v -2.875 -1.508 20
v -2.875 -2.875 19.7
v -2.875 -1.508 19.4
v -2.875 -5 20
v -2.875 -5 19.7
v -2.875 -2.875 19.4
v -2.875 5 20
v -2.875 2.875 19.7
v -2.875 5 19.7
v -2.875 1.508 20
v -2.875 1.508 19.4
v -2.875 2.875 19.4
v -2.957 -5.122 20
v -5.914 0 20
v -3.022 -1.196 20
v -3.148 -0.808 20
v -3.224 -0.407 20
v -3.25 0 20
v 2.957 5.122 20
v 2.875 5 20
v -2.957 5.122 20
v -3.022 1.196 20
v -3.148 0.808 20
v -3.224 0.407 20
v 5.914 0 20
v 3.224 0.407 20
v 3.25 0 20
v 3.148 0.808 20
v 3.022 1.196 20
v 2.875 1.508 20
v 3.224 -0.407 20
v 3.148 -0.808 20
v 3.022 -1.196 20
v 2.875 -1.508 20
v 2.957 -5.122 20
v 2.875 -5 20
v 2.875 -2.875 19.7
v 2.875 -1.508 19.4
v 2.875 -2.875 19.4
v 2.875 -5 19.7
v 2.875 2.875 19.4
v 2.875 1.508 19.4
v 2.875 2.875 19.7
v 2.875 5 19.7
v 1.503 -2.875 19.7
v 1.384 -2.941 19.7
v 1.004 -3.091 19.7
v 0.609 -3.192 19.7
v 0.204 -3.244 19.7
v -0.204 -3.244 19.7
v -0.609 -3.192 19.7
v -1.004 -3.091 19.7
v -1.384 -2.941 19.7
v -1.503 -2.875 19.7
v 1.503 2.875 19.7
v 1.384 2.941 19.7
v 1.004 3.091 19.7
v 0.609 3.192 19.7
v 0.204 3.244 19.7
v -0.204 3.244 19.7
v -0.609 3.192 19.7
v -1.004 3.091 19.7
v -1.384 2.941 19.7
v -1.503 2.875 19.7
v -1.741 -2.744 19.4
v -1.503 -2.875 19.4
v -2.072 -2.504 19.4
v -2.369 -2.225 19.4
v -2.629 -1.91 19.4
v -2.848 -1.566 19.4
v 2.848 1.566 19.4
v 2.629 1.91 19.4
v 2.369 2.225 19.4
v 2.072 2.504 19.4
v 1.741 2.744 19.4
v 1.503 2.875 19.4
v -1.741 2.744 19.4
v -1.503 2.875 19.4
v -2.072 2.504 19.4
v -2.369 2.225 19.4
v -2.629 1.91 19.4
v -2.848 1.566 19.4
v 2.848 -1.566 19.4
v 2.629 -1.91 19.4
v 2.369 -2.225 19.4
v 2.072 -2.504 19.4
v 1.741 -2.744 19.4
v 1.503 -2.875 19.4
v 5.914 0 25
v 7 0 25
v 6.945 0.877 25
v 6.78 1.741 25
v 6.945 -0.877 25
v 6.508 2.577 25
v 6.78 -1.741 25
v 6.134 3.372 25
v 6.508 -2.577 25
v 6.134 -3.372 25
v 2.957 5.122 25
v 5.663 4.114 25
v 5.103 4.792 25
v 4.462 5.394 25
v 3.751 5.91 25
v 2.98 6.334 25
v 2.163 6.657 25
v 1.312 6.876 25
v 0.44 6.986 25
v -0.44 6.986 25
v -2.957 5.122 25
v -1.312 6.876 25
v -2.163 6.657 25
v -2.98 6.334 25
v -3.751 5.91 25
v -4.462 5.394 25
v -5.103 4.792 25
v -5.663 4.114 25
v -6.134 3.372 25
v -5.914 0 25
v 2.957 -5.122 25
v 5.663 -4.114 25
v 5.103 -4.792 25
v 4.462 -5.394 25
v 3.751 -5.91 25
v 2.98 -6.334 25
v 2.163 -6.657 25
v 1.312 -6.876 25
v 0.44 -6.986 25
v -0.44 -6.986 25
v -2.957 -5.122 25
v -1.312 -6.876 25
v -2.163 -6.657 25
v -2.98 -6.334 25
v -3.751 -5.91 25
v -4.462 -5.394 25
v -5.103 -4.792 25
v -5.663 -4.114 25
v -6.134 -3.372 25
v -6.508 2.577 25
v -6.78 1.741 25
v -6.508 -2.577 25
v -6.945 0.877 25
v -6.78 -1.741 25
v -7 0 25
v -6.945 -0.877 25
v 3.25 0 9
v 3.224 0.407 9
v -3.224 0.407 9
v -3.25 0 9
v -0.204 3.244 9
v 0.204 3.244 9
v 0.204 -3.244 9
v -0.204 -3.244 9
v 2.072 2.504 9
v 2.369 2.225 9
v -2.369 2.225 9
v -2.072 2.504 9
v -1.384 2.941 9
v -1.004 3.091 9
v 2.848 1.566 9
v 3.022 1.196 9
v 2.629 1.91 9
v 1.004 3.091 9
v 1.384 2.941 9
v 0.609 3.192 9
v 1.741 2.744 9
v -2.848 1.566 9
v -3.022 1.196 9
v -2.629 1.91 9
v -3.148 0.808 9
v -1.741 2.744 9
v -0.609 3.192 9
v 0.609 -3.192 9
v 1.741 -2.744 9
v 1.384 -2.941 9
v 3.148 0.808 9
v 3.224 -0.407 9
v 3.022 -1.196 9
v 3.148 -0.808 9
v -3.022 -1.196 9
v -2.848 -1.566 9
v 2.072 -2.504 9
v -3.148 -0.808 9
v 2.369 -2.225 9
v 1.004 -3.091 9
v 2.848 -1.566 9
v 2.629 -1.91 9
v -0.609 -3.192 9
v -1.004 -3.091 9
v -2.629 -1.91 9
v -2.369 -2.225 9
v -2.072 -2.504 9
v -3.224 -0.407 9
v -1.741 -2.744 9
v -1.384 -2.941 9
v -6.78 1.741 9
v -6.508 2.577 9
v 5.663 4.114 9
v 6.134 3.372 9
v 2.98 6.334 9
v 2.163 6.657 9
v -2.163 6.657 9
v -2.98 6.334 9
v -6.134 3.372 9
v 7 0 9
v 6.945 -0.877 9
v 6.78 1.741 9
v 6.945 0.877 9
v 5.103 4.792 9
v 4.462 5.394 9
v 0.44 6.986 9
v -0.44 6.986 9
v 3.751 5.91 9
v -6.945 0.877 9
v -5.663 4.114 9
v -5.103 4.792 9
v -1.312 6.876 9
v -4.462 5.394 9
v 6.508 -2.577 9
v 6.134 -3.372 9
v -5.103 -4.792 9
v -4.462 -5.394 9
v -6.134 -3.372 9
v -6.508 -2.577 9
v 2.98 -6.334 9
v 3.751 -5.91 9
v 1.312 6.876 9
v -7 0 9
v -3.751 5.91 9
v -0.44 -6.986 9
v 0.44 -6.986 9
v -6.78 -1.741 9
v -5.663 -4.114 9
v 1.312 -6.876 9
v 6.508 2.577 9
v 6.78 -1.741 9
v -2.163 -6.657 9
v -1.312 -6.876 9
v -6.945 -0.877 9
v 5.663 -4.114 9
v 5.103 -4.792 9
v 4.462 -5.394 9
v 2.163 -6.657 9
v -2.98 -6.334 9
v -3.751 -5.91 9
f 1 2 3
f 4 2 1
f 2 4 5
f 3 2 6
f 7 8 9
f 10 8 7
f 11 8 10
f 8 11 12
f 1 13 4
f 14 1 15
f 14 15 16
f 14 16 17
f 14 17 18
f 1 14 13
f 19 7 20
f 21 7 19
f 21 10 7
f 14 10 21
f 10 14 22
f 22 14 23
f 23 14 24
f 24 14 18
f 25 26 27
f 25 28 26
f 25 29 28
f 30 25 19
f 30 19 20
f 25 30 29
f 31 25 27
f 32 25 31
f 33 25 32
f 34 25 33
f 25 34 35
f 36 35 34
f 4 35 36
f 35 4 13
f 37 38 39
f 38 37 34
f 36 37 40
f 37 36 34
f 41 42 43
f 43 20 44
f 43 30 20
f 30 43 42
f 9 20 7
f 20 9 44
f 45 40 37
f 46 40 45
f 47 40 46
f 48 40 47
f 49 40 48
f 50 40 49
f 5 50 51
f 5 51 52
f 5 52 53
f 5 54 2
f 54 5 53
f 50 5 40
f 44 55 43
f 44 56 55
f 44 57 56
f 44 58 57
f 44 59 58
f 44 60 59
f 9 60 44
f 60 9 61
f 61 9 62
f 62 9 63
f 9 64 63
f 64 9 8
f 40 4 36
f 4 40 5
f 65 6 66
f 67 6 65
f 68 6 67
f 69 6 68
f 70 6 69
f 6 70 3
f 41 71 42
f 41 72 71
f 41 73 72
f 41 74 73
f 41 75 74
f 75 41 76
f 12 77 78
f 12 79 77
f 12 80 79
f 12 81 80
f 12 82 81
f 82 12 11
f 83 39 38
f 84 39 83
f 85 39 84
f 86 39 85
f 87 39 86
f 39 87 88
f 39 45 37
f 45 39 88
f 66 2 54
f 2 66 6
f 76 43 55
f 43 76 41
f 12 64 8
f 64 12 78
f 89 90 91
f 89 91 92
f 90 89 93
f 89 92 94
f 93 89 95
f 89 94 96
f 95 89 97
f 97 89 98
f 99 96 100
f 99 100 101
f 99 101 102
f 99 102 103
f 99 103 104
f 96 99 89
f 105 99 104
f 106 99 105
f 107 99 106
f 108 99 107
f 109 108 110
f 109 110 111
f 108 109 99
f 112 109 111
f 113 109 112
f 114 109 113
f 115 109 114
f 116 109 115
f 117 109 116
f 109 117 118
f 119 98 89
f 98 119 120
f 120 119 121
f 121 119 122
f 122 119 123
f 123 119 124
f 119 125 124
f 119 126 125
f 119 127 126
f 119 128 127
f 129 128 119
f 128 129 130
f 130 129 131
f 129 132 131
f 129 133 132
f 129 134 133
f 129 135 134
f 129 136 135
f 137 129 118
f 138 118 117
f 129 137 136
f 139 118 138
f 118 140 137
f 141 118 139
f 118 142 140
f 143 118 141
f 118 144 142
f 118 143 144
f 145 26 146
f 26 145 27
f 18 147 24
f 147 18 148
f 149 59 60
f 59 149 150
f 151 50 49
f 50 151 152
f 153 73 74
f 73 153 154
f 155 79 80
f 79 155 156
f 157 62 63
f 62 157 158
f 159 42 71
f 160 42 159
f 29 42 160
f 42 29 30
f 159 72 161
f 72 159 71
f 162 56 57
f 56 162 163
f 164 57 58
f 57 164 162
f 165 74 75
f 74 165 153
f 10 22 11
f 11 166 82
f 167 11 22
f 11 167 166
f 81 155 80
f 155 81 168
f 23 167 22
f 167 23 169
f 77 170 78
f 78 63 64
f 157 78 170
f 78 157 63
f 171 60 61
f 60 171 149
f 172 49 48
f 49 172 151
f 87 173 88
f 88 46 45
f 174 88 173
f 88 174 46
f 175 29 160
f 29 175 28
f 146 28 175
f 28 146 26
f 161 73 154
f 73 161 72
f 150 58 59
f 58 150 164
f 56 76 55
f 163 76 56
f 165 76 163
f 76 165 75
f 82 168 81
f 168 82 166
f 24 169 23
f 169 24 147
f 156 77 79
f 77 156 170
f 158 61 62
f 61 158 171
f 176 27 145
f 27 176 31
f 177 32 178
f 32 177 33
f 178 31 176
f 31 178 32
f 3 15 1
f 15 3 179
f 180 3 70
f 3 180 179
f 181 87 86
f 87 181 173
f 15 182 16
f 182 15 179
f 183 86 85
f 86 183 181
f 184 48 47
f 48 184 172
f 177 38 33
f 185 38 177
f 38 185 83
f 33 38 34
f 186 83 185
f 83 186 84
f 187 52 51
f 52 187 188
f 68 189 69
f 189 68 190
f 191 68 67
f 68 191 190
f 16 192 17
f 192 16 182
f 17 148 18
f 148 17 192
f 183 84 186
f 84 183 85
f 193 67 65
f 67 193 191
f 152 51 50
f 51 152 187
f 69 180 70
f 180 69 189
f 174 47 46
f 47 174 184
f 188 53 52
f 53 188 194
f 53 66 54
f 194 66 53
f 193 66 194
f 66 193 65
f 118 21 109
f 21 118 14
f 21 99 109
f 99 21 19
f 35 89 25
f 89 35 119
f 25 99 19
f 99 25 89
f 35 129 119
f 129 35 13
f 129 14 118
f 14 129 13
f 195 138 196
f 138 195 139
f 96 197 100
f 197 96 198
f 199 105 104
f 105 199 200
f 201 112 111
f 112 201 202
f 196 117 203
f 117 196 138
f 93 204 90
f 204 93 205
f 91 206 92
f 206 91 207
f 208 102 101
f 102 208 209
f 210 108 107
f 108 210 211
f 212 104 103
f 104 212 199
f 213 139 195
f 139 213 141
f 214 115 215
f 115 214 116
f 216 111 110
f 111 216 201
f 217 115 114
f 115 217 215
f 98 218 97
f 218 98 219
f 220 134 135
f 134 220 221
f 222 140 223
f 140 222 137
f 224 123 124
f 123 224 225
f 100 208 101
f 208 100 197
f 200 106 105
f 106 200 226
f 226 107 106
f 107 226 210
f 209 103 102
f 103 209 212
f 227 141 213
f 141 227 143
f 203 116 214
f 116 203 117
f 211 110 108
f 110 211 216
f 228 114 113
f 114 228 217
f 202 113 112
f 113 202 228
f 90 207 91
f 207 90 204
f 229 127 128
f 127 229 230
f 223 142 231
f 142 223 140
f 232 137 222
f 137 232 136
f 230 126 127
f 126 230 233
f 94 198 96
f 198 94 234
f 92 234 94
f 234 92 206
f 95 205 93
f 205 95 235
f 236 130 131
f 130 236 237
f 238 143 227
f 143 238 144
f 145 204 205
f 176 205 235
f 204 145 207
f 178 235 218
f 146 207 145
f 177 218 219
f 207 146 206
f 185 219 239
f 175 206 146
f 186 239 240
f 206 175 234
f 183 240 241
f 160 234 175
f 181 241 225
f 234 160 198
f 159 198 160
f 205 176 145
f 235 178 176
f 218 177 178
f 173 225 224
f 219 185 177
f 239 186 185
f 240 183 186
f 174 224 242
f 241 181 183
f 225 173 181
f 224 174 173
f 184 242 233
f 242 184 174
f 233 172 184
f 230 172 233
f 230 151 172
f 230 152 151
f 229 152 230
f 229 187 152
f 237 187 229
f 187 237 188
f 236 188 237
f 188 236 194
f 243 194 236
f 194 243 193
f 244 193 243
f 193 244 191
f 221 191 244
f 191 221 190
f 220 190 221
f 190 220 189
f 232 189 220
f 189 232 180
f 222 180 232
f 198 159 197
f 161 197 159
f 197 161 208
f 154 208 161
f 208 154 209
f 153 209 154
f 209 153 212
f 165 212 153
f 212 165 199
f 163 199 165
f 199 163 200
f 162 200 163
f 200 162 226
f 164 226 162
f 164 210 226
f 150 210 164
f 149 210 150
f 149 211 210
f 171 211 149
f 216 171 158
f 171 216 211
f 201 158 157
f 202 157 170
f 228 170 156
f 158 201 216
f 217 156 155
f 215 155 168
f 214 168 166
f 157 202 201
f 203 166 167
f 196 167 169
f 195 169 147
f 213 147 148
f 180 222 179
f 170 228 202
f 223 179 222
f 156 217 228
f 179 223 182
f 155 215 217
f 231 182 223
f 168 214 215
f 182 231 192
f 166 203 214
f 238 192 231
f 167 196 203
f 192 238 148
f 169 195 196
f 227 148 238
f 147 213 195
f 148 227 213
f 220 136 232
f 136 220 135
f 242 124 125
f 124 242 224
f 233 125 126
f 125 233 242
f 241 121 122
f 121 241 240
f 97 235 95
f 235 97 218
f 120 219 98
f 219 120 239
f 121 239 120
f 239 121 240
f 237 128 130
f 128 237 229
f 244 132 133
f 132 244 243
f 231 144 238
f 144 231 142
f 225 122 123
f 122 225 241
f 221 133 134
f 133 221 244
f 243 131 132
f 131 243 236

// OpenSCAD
$fn = 50;


difference() {
	union() {
		translate(v = [0, 0, 9.0000000000]) {
			cylinder(h = 16, r = 7.0000000000);
		}
	}
	union() {
		translate(v = [0, 0, 25]) {
			rotate(a = [0, 0, 0]) {
				difference() {
					union() {
						#translate(v = [-2.8750000000, -5.0000000000, -5.3000000000]) {
							cube(size = [5.7500000000, 10, 0.3000000000]);
						}
						#translate(v = [-2.8750000000, -2.8750000000, -5.6000000000]) {
							cube(size = [5.7500000000, 5.7500000000, 0.3000000000]);
						}
						#translate(v = [-2.8750000000, -5.0000000000, 0]) {
							cube(size = [5.7500000000, 10, 0.3000000000]);
						}
						#translate(v = [-2.8750000000, -2.8750000000, 0.3000000000]) {
							cube(size = [5.7500000000, 5.7500000000, 0.3000000000]);
						}
						#translate(v = [0, 0, -100.0000000000]) {
							cylinder(h = 200, r = 3.2500000000);
						}
						translate(v = [0, 0, -5]) {
							#linear_extrude(height = 5) {
								polygon(points = [[5.9142500000, 0.0000000000], [2.9571250000, 5.1218907443], [-2.9571250000, 5.1218907443], [-5.9142500000, 0.0000000000], [-2.9571250000, -5.1218907443], [2.9571250000, -5.1218907443]]);
							}
						}
						#translate(v = [-2.8750000000, -5.0000000000, -5.3000000000]) {
							cube(size = [5.7500000000, 10, 0.3000000000]);
						}
						#translate(v = [-2.8750000000, -2.8750000000, -5.6000000000]) {
							cube(size = [5.7500000000, 5.7500000000, 0.3000000000]);
						}
						#translate(v = [-2.8750000000, -5.0000000000, 0]) {
							cube(size = [5.7500000000, 10, 0.3000000000]);
						}
						#translate(v = [-2.8750000000, -2.8750000000, 0.3000000000]) {
							cube(size = [5.7500000000, 5.7500000000, 0.3000000000]);
						}
						#translate(v = [0, 0, -100.0000000000]) {
							cylinder(h = 200, r = 3.2500000000);
						}
						#translate(v = [-2.8750000000, -5.0000000000, -5.3000000000]) {
							cube(size = [5.7500000000, 10, 0.3000000000]);
						}
						#translate(v = [-2.8750000000, -2.8750000000, -5.6000000000]) {
							cube(size = [5.7500000000, 5.7500000000, 0.3000000000]);
						}
						#translate(v = [-2.8750000000, -5.0000000000, 0]) {
							cube(size = [5.7500000000, 10, 0.3000000000]);
						}
						#translate(v = [-2.8750000000, -2.8750000000, 0.3000000000]) {
							cube(size = [5.7500000000, 5.7500000000, 0.3000000000]);
						}
						#translate(v = [0, 0, -100.0000000000]) {
							cylinder(h = 200, r = 3.2500000000);
						}
					}
					union();
				}
			}
		}
		#translate(v = [0, 0, -100.0000000000]) {
			cylinder(h = 200, r = 3.2500000000);
		}
	}
}
